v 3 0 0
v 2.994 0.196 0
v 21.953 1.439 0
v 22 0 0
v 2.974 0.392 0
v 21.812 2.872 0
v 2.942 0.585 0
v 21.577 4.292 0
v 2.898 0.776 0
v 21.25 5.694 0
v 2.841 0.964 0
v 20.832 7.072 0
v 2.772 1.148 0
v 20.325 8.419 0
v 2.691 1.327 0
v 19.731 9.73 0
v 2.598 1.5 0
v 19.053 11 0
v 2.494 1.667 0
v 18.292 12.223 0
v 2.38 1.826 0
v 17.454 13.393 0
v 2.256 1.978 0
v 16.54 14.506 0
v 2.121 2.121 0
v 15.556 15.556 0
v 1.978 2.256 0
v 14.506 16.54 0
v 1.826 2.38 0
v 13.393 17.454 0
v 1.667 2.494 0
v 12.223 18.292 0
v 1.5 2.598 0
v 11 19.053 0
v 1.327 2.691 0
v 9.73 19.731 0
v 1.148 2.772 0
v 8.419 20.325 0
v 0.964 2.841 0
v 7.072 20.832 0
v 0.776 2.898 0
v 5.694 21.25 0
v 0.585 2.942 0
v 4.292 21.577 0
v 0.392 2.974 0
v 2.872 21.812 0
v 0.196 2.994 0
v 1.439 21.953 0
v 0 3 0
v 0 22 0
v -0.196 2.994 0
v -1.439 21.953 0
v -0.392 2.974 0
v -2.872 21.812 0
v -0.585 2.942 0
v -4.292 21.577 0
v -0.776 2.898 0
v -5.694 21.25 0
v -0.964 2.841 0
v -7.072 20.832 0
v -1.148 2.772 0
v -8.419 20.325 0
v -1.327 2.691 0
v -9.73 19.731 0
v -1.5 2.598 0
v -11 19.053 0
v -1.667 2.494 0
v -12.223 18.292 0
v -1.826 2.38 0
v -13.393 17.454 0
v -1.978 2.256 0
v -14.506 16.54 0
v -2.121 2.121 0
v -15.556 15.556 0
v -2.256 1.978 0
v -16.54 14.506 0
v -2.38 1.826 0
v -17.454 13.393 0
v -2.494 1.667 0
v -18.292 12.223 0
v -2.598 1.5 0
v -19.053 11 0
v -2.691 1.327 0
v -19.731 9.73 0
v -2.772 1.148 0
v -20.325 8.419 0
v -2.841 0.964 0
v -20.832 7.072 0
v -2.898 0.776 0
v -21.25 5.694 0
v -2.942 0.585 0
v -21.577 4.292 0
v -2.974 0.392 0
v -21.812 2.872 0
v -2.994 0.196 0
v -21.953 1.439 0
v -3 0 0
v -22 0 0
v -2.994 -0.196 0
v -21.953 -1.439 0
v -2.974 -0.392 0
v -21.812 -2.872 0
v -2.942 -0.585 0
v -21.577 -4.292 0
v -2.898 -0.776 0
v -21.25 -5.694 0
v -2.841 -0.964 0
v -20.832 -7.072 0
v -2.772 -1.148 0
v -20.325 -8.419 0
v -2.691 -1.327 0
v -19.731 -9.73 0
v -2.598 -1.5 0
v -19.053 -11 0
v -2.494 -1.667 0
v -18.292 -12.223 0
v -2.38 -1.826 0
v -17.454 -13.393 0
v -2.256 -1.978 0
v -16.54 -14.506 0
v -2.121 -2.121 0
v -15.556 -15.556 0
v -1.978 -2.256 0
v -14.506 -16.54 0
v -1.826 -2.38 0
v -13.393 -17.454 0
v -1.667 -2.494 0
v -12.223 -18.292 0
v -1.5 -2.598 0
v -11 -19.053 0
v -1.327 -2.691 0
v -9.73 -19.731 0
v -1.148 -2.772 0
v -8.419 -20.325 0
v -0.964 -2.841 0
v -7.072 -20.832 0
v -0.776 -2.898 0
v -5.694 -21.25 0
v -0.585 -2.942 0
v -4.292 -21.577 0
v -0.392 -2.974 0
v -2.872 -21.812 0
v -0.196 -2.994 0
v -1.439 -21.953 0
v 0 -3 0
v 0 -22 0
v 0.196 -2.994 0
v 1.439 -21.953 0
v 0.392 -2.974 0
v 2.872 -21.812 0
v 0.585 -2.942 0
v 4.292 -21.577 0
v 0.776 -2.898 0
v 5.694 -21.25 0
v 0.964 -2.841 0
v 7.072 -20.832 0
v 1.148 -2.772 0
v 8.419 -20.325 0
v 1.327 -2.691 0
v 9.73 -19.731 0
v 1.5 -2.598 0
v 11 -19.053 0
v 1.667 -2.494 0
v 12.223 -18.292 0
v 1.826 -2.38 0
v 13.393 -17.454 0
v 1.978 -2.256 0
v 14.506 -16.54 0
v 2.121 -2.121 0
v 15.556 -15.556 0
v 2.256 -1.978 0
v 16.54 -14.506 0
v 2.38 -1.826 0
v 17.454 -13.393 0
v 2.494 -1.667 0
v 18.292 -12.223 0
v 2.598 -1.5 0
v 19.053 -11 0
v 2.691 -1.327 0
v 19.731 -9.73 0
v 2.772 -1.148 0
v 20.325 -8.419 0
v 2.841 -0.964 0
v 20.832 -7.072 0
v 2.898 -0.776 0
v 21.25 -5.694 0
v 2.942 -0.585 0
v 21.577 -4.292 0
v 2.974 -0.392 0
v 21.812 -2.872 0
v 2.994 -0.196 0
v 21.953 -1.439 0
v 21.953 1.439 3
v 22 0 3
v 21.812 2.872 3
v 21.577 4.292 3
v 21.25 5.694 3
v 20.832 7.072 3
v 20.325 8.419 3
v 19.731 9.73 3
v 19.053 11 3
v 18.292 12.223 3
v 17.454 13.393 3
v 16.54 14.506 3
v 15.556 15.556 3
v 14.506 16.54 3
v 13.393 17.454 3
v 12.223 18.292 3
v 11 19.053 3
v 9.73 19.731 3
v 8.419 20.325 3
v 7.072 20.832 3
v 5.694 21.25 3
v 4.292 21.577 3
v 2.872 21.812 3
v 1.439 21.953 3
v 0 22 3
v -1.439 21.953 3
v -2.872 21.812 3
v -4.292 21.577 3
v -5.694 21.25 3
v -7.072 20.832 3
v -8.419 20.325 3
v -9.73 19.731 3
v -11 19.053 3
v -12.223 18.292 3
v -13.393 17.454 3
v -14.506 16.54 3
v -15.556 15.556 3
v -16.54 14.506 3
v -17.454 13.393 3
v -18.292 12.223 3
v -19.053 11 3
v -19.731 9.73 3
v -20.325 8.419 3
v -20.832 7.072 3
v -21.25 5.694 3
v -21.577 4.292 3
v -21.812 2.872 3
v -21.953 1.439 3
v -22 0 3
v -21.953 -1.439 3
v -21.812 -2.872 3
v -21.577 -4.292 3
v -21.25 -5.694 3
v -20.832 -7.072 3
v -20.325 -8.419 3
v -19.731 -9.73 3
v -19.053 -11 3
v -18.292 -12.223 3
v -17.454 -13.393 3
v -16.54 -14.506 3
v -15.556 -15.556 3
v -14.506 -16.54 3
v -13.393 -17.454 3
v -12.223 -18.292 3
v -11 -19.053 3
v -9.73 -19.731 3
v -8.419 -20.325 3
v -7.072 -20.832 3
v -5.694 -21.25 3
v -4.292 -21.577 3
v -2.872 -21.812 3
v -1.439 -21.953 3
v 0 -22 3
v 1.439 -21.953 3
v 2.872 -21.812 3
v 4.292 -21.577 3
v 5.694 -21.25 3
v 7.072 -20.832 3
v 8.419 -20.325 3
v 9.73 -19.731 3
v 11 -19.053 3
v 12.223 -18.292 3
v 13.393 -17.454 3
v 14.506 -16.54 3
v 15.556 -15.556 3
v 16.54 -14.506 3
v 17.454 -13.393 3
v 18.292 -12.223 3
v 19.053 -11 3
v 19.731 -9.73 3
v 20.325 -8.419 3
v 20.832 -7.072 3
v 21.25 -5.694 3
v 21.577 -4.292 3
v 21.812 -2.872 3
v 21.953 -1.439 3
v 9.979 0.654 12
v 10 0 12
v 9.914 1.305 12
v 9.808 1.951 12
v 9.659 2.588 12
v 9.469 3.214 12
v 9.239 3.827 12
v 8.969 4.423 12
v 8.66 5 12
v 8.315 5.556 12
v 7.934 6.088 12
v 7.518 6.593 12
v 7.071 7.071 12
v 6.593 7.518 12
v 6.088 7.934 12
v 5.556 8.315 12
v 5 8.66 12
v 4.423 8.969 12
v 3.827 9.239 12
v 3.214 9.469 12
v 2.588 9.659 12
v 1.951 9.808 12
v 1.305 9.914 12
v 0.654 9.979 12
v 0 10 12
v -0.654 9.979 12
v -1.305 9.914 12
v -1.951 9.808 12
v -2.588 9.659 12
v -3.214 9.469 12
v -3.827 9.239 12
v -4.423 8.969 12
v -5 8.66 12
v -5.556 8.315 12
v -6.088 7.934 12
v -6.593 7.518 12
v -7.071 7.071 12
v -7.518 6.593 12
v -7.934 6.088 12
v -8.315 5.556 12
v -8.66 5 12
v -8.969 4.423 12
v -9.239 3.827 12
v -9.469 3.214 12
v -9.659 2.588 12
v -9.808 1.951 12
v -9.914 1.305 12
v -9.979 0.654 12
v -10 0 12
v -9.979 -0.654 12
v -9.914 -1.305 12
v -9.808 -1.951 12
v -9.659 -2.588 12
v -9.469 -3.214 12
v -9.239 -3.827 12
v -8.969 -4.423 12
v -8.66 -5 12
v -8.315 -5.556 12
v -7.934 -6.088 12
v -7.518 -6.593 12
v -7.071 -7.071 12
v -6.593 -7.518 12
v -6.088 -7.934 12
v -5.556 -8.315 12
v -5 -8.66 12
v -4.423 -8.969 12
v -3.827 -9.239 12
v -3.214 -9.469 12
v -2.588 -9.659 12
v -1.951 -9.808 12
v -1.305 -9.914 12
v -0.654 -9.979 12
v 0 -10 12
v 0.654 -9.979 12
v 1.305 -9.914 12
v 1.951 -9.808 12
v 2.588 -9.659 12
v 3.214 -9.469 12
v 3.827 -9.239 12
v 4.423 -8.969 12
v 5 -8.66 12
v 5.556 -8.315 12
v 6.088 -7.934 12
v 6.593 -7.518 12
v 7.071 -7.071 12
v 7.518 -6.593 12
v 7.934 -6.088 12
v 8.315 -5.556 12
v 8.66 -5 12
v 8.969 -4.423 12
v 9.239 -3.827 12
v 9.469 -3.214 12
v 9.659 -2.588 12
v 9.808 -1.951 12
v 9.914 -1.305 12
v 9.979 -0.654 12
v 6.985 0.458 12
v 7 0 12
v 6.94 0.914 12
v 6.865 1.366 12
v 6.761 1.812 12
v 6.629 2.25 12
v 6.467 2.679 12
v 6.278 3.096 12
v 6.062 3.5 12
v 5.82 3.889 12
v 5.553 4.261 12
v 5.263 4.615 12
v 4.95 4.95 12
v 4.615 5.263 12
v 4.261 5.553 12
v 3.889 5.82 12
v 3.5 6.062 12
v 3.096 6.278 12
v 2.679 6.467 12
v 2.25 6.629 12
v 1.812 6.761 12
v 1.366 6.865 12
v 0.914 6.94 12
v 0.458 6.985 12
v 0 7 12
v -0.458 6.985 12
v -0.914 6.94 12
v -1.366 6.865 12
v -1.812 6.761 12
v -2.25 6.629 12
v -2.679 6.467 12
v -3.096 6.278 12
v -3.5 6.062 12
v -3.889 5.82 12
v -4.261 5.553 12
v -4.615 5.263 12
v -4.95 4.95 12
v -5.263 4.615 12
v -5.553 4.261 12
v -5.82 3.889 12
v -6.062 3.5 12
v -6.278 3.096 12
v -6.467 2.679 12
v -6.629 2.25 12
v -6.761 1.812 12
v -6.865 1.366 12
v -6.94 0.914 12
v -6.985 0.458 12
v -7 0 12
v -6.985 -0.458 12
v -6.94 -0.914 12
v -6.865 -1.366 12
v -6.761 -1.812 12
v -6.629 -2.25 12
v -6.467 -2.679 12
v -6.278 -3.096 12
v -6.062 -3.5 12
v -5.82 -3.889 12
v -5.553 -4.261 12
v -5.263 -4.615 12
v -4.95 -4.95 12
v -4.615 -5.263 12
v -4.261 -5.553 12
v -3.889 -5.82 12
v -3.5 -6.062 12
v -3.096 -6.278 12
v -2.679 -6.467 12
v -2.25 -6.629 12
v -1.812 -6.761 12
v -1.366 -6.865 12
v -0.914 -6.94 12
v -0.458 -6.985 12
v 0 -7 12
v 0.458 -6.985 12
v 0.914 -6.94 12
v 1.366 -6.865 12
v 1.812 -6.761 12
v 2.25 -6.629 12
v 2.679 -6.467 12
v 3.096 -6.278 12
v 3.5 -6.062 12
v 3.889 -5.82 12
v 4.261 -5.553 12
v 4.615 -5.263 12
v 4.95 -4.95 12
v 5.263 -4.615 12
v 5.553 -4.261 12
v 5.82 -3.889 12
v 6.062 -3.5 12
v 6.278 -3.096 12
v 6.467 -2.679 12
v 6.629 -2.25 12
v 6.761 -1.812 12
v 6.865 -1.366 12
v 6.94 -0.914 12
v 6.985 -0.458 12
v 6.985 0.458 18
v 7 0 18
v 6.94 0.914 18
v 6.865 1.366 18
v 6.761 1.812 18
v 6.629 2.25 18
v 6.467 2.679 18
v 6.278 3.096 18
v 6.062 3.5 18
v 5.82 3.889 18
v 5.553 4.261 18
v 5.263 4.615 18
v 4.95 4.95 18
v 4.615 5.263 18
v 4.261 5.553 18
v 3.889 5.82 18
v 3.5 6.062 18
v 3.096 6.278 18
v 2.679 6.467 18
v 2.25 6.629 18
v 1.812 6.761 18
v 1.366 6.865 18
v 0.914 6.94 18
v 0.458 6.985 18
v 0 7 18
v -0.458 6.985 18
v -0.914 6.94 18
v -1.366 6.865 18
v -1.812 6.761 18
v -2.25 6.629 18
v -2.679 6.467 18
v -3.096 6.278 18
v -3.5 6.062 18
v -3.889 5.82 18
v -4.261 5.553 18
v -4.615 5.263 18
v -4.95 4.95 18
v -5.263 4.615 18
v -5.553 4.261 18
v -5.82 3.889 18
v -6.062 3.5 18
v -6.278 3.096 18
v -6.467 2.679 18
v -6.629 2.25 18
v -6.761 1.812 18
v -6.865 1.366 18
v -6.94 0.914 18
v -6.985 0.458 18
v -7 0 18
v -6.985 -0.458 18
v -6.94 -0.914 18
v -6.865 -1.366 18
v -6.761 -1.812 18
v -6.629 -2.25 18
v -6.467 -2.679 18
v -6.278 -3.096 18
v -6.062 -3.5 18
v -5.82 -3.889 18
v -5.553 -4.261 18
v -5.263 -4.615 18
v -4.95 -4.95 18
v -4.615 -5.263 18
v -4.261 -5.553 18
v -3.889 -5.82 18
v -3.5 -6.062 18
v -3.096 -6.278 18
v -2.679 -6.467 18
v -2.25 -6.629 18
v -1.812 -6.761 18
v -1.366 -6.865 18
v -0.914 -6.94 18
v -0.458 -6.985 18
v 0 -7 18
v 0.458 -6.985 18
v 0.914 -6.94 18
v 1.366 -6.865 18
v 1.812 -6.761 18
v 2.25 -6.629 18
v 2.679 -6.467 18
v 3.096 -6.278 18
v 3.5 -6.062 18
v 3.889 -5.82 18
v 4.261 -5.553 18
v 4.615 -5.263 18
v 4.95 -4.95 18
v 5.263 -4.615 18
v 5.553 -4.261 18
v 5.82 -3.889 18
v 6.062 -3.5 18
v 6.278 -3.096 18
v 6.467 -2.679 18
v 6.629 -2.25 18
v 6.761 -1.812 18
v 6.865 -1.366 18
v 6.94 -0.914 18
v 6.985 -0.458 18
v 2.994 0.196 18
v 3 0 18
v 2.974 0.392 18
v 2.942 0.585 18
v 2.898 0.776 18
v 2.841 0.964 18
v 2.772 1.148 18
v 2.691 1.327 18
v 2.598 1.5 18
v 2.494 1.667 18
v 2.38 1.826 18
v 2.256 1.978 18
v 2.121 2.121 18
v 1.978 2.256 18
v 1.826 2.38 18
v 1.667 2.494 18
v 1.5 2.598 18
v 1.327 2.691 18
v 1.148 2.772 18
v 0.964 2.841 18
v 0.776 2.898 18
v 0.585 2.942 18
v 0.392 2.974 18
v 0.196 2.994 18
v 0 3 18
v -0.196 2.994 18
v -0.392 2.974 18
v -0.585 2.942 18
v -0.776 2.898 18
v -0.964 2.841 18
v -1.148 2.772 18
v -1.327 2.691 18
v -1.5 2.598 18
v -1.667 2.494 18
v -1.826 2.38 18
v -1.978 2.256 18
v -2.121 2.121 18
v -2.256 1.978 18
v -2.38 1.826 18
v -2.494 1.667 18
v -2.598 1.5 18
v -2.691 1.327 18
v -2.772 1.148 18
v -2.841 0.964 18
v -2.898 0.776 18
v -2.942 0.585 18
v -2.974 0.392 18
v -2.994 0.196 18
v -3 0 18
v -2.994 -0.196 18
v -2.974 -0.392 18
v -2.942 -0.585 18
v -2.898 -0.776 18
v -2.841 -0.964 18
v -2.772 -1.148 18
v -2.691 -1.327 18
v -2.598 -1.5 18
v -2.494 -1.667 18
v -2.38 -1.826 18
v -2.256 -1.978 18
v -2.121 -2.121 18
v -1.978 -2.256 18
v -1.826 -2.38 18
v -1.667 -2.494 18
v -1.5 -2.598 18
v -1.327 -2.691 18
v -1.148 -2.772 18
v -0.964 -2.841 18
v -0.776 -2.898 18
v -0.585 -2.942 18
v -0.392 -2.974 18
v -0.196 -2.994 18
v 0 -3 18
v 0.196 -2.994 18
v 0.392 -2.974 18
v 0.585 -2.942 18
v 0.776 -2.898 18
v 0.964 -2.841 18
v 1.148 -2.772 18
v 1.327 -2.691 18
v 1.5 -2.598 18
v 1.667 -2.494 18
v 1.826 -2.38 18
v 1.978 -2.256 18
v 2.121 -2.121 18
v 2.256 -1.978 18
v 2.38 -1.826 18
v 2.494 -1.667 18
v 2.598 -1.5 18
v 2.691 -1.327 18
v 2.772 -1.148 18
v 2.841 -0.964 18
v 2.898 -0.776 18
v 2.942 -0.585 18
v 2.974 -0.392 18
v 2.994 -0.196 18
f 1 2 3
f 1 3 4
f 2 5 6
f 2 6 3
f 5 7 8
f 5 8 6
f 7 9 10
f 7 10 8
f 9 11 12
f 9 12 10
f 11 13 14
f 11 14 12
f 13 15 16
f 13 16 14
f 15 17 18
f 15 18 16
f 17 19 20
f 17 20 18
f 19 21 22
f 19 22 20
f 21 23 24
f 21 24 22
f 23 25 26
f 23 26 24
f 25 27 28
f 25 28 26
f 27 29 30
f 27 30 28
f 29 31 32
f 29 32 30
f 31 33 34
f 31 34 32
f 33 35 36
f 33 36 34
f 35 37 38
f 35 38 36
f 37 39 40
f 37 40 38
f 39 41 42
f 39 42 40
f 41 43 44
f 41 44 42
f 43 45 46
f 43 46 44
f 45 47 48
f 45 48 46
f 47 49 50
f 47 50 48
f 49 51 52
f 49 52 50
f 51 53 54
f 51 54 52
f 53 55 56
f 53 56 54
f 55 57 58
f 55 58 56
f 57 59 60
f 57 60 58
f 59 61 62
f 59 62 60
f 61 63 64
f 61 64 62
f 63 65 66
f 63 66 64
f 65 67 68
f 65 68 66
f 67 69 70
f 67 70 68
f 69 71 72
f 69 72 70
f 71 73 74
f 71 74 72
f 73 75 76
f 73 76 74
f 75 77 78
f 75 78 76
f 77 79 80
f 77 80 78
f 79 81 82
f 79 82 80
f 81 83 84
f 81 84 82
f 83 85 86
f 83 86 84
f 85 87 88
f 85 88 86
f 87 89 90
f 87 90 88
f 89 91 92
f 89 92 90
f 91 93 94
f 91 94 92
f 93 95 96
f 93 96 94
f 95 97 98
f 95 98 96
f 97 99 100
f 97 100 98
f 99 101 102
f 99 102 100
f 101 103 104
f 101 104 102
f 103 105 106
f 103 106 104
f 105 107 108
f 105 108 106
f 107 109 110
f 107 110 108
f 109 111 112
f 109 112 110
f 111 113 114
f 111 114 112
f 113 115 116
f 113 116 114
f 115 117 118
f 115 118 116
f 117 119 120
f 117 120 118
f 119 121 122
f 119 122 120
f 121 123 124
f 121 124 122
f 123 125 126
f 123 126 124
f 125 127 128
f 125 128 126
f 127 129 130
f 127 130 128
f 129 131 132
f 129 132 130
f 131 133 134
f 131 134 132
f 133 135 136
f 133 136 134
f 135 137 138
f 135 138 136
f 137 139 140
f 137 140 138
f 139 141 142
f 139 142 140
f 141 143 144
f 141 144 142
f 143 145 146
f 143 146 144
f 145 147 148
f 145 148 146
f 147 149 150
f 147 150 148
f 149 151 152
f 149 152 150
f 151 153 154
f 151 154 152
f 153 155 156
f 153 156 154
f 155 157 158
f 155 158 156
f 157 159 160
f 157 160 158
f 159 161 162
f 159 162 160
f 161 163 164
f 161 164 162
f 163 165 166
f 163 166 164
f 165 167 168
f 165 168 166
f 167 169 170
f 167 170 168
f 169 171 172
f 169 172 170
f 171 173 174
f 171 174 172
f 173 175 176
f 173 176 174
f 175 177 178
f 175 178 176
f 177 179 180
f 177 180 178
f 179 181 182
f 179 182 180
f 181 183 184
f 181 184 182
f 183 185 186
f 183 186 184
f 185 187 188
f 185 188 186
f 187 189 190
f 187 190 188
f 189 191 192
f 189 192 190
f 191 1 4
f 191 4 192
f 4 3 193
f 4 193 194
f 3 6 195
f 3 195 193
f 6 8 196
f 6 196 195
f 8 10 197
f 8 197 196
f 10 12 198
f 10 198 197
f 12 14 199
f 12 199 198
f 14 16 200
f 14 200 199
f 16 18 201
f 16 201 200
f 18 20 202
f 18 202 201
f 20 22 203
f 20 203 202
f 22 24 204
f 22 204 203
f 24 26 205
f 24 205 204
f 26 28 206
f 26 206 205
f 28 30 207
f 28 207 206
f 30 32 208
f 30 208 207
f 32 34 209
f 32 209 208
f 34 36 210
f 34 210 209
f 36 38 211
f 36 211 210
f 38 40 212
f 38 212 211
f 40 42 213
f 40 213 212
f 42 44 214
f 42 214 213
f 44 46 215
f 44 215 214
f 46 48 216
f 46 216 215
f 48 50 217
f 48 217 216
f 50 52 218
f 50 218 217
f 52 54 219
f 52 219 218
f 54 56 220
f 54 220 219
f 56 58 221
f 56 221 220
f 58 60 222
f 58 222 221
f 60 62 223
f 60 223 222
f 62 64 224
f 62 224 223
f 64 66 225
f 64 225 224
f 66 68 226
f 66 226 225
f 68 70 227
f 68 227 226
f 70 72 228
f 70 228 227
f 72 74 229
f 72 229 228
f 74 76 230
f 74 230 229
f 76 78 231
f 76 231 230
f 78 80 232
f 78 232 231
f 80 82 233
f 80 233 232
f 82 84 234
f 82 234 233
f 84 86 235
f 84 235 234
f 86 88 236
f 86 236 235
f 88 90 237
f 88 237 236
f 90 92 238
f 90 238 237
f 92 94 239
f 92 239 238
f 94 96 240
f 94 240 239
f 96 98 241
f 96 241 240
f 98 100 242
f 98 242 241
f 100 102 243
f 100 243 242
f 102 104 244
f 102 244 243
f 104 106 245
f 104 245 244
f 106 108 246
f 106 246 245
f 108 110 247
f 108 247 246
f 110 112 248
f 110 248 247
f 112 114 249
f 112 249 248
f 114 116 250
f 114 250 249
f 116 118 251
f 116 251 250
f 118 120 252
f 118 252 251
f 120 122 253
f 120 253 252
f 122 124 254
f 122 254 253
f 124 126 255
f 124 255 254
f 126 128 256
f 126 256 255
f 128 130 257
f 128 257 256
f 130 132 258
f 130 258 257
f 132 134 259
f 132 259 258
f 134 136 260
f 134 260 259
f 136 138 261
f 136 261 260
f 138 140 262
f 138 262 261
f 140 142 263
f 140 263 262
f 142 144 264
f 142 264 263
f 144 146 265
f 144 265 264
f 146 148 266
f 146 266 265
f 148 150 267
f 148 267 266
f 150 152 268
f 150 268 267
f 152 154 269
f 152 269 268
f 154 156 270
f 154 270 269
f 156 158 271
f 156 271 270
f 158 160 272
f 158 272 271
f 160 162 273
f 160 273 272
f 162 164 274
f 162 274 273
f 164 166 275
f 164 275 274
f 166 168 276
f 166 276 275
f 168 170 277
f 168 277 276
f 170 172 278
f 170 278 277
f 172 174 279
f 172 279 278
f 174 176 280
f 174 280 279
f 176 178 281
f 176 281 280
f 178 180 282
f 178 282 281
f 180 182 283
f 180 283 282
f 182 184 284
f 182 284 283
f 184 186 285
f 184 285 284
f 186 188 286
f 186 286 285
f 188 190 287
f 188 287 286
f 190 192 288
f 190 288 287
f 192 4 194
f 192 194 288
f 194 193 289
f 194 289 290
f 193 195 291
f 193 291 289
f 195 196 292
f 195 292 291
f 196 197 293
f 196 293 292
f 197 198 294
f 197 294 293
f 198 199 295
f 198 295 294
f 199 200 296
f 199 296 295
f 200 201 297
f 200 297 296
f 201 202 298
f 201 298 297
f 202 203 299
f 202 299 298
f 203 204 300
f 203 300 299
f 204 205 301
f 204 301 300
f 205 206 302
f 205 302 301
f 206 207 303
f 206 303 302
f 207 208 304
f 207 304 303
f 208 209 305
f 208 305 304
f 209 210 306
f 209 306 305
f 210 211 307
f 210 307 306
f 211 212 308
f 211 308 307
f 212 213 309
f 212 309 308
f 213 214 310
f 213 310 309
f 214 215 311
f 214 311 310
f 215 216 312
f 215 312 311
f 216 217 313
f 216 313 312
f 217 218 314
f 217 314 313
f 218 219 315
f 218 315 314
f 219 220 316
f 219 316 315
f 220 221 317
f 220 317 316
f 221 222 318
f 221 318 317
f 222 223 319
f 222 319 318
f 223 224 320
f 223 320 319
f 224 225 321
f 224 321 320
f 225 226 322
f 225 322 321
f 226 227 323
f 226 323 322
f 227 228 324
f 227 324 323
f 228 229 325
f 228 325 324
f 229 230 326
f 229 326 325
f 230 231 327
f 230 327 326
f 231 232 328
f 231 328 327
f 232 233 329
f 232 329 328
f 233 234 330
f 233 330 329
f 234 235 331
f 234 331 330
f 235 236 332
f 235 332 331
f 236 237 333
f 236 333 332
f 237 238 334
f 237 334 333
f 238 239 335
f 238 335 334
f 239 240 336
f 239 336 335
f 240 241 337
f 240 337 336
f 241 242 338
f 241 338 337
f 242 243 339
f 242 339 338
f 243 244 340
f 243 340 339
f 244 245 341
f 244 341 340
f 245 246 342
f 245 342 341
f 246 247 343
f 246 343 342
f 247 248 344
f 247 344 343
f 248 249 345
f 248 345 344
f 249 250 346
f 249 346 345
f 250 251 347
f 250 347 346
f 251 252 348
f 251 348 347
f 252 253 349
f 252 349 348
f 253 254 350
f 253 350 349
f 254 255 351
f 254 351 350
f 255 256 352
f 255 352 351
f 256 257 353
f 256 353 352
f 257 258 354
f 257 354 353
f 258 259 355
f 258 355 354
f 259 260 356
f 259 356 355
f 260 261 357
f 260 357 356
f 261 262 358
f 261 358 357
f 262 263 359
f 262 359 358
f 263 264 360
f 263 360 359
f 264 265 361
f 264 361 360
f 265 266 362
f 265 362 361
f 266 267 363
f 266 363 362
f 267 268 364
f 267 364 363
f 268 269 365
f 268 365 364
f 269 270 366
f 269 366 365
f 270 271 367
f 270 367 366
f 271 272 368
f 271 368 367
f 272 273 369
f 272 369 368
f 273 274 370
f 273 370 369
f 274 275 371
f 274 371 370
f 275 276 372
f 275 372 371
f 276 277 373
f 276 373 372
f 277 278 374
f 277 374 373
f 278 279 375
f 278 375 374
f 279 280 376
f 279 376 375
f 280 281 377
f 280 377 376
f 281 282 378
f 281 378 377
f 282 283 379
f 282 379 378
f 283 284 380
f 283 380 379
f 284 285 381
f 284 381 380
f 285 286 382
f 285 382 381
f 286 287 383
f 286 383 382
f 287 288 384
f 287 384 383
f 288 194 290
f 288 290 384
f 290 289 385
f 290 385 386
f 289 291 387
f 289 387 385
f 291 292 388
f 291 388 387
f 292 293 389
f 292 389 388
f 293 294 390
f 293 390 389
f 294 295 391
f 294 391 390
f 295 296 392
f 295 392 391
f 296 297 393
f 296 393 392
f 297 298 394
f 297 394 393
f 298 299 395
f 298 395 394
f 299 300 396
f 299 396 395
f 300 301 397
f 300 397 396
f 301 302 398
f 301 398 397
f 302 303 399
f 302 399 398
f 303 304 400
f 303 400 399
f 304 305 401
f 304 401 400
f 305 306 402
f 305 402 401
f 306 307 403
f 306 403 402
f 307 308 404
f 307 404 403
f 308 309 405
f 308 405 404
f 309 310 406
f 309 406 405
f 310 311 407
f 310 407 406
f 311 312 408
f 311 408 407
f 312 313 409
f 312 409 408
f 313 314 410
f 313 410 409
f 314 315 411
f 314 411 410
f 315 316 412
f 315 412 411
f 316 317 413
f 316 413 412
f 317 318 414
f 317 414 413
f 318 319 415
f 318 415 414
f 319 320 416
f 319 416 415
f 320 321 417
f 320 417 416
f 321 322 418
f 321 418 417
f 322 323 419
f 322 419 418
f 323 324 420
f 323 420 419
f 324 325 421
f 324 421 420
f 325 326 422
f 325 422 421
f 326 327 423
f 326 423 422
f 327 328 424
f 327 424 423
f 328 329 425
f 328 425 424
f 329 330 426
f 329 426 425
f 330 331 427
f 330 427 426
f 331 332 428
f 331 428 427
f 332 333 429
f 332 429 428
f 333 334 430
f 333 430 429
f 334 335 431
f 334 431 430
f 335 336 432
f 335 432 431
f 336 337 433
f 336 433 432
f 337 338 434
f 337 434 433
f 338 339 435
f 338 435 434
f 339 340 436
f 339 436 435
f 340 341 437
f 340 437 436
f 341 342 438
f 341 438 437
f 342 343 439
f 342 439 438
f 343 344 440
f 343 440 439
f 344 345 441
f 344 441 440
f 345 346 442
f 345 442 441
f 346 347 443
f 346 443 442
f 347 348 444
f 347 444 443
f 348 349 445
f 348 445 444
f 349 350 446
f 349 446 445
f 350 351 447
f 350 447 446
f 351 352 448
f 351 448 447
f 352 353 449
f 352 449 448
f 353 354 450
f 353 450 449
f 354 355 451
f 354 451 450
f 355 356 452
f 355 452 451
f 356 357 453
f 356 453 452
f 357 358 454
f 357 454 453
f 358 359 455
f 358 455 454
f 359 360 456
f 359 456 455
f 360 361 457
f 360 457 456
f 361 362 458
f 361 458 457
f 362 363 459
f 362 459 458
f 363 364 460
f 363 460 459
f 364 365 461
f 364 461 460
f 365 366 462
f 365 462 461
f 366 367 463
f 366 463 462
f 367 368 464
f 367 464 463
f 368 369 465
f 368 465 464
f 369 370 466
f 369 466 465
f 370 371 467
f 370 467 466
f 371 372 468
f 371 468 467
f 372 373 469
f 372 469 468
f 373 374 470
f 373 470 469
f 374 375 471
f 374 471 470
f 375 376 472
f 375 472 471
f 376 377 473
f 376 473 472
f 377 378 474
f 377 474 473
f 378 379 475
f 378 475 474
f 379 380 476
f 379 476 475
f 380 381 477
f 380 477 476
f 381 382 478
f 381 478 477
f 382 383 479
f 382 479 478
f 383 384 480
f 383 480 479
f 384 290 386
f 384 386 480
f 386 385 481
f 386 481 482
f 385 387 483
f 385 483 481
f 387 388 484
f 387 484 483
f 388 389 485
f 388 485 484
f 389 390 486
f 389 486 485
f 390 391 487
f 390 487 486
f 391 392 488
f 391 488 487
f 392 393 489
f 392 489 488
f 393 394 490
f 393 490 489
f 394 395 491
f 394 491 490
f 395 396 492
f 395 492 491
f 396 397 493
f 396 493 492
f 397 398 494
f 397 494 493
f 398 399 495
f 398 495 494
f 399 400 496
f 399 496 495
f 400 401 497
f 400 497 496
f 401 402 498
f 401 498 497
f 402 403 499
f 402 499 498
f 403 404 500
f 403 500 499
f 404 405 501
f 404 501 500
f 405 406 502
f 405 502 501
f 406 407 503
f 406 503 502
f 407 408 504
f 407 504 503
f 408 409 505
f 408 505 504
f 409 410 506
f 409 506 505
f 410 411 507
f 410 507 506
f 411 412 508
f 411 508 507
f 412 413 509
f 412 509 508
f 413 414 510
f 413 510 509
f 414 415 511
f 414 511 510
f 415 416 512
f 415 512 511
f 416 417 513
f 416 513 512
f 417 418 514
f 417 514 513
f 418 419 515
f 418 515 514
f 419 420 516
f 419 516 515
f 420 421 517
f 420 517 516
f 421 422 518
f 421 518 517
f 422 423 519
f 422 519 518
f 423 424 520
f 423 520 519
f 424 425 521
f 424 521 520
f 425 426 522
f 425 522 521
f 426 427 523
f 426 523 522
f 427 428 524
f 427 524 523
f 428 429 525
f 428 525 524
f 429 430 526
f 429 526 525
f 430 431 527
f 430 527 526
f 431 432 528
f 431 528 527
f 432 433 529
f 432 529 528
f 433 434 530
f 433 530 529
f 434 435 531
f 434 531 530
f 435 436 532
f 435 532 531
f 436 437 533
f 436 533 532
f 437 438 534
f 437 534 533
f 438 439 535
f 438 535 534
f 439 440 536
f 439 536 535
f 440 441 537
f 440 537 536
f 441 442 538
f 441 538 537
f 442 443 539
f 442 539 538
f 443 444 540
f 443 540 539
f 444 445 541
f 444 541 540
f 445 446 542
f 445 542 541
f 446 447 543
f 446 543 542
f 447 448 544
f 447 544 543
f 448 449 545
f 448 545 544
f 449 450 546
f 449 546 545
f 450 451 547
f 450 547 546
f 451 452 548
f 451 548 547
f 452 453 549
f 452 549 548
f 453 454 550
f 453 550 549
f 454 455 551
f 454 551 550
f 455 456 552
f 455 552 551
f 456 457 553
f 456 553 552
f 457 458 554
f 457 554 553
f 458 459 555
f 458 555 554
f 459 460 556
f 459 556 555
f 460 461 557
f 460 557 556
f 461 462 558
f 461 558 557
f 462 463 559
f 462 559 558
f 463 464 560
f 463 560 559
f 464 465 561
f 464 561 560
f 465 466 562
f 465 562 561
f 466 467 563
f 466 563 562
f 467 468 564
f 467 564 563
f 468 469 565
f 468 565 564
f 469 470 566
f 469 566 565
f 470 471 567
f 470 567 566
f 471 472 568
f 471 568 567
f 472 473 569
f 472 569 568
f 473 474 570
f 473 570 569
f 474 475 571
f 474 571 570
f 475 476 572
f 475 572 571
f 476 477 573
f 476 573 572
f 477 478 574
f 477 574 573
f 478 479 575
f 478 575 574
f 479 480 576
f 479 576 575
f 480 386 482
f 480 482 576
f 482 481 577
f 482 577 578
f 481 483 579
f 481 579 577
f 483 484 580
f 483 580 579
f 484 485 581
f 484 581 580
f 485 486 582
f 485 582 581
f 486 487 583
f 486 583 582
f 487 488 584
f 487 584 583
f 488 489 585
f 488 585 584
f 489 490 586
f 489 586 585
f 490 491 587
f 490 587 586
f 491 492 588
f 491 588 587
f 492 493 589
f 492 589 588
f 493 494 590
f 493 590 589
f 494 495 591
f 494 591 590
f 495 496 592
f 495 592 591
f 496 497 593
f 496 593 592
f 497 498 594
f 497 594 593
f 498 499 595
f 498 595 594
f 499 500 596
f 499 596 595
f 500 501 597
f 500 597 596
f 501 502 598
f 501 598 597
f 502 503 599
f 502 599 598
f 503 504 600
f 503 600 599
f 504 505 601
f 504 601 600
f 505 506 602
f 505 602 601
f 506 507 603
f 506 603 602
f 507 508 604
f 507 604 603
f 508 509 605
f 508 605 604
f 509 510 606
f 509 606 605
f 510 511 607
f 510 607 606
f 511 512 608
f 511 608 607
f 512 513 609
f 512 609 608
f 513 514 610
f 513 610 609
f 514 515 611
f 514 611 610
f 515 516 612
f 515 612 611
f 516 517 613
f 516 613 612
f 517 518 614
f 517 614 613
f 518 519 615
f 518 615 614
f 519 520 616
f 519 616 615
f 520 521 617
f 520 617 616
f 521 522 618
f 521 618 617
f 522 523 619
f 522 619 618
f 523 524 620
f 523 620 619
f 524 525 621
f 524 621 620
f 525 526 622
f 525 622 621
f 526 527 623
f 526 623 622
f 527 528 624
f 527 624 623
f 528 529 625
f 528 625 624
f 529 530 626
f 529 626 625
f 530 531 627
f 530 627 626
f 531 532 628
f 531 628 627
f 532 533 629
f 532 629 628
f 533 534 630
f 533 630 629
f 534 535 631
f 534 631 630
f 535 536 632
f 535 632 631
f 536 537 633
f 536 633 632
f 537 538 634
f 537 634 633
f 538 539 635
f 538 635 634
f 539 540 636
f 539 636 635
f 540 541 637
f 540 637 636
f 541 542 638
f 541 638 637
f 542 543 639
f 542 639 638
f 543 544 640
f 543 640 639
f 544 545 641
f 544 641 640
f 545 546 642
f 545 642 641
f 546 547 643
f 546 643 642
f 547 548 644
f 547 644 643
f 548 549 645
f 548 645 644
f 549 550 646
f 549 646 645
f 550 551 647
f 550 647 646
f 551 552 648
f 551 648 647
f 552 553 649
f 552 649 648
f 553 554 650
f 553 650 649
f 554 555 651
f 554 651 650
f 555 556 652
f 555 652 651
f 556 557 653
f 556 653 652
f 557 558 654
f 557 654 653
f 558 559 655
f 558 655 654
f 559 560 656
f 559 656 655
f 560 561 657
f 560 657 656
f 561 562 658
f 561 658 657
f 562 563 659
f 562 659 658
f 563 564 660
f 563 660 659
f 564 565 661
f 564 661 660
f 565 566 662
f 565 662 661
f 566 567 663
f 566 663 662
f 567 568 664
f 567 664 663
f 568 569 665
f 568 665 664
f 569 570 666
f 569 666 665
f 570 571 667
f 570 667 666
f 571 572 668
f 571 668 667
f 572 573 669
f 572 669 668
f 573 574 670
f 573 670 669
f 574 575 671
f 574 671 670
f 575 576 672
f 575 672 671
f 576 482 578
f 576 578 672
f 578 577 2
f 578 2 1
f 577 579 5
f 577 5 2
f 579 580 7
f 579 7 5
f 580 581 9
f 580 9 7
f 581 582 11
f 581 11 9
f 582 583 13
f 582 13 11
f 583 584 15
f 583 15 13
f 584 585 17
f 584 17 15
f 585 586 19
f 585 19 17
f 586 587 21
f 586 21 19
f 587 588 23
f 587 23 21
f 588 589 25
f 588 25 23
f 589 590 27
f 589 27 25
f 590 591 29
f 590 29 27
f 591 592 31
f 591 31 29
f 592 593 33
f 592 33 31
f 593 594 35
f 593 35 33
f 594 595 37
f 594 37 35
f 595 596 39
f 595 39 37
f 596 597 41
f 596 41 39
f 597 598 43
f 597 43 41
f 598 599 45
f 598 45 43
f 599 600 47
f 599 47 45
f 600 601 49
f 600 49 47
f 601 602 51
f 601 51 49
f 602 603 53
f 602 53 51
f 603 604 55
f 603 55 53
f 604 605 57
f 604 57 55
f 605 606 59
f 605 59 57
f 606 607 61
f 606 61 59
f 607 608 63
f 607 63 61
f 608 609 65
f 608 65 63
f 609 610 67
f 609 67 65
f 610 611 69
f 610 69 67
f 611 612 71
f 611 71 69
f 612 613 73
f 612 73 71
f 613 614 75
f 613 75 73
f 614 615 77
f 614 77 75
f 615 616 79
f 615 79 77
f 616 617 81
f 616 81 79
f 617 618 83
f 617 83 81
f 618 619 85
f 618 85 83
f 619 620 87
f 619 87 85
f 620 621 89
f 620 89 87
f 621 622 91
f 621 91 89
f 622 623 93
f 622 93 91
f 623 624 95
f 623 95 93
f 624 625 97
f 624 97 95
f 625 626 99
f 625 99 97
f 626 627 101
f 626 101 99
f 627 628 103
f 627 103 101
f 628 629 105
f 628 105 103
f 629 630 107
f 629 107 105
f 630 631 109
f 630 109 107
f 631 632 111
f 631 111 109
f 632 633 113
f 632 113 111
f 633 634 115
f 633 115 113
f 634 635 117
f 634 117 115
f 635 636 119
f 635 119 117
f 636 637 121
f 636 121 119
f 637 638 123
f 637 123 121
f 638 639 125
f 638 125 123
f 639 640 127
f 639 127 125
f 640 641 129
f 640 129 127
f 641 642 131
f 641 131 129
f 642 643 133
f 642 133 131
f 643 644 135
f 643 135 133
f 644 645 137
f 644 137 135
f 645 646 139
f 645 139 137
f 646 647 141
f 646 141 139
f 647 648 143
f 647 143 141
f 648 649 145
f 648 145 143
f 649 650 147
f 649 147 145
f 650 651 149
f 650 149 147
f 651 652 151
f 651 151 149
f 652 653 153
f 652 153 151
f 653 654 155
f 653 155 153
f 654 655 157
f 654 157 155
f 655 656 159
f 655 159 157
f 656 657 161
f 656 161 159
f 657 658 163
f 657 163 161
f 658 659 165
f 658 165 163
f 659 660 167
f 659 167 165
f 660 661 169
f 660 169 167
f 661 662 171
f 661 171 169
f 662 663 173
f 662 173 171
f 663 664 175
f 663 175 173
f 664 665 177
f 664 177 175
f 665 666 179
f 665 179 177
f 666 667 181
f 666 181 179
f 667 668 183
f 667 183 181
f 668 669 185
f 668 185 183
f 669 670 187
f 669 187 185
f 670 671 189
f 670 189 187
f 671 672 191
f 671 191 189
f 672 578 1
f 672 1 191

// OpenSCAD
// Original MechIntel educational model. CC0-1.0. Units: mm.
// Not a standardized or load-rated component.
$fn=96;
// Section points: [radius, height], mm. Edit to change the profile.
section=[[3, 0], [22, 0], [22, 3], [10, 12], [7, 12], [7, 18], [3, 18]];
rotate_extrude($fn=96) polygon(points=section);
